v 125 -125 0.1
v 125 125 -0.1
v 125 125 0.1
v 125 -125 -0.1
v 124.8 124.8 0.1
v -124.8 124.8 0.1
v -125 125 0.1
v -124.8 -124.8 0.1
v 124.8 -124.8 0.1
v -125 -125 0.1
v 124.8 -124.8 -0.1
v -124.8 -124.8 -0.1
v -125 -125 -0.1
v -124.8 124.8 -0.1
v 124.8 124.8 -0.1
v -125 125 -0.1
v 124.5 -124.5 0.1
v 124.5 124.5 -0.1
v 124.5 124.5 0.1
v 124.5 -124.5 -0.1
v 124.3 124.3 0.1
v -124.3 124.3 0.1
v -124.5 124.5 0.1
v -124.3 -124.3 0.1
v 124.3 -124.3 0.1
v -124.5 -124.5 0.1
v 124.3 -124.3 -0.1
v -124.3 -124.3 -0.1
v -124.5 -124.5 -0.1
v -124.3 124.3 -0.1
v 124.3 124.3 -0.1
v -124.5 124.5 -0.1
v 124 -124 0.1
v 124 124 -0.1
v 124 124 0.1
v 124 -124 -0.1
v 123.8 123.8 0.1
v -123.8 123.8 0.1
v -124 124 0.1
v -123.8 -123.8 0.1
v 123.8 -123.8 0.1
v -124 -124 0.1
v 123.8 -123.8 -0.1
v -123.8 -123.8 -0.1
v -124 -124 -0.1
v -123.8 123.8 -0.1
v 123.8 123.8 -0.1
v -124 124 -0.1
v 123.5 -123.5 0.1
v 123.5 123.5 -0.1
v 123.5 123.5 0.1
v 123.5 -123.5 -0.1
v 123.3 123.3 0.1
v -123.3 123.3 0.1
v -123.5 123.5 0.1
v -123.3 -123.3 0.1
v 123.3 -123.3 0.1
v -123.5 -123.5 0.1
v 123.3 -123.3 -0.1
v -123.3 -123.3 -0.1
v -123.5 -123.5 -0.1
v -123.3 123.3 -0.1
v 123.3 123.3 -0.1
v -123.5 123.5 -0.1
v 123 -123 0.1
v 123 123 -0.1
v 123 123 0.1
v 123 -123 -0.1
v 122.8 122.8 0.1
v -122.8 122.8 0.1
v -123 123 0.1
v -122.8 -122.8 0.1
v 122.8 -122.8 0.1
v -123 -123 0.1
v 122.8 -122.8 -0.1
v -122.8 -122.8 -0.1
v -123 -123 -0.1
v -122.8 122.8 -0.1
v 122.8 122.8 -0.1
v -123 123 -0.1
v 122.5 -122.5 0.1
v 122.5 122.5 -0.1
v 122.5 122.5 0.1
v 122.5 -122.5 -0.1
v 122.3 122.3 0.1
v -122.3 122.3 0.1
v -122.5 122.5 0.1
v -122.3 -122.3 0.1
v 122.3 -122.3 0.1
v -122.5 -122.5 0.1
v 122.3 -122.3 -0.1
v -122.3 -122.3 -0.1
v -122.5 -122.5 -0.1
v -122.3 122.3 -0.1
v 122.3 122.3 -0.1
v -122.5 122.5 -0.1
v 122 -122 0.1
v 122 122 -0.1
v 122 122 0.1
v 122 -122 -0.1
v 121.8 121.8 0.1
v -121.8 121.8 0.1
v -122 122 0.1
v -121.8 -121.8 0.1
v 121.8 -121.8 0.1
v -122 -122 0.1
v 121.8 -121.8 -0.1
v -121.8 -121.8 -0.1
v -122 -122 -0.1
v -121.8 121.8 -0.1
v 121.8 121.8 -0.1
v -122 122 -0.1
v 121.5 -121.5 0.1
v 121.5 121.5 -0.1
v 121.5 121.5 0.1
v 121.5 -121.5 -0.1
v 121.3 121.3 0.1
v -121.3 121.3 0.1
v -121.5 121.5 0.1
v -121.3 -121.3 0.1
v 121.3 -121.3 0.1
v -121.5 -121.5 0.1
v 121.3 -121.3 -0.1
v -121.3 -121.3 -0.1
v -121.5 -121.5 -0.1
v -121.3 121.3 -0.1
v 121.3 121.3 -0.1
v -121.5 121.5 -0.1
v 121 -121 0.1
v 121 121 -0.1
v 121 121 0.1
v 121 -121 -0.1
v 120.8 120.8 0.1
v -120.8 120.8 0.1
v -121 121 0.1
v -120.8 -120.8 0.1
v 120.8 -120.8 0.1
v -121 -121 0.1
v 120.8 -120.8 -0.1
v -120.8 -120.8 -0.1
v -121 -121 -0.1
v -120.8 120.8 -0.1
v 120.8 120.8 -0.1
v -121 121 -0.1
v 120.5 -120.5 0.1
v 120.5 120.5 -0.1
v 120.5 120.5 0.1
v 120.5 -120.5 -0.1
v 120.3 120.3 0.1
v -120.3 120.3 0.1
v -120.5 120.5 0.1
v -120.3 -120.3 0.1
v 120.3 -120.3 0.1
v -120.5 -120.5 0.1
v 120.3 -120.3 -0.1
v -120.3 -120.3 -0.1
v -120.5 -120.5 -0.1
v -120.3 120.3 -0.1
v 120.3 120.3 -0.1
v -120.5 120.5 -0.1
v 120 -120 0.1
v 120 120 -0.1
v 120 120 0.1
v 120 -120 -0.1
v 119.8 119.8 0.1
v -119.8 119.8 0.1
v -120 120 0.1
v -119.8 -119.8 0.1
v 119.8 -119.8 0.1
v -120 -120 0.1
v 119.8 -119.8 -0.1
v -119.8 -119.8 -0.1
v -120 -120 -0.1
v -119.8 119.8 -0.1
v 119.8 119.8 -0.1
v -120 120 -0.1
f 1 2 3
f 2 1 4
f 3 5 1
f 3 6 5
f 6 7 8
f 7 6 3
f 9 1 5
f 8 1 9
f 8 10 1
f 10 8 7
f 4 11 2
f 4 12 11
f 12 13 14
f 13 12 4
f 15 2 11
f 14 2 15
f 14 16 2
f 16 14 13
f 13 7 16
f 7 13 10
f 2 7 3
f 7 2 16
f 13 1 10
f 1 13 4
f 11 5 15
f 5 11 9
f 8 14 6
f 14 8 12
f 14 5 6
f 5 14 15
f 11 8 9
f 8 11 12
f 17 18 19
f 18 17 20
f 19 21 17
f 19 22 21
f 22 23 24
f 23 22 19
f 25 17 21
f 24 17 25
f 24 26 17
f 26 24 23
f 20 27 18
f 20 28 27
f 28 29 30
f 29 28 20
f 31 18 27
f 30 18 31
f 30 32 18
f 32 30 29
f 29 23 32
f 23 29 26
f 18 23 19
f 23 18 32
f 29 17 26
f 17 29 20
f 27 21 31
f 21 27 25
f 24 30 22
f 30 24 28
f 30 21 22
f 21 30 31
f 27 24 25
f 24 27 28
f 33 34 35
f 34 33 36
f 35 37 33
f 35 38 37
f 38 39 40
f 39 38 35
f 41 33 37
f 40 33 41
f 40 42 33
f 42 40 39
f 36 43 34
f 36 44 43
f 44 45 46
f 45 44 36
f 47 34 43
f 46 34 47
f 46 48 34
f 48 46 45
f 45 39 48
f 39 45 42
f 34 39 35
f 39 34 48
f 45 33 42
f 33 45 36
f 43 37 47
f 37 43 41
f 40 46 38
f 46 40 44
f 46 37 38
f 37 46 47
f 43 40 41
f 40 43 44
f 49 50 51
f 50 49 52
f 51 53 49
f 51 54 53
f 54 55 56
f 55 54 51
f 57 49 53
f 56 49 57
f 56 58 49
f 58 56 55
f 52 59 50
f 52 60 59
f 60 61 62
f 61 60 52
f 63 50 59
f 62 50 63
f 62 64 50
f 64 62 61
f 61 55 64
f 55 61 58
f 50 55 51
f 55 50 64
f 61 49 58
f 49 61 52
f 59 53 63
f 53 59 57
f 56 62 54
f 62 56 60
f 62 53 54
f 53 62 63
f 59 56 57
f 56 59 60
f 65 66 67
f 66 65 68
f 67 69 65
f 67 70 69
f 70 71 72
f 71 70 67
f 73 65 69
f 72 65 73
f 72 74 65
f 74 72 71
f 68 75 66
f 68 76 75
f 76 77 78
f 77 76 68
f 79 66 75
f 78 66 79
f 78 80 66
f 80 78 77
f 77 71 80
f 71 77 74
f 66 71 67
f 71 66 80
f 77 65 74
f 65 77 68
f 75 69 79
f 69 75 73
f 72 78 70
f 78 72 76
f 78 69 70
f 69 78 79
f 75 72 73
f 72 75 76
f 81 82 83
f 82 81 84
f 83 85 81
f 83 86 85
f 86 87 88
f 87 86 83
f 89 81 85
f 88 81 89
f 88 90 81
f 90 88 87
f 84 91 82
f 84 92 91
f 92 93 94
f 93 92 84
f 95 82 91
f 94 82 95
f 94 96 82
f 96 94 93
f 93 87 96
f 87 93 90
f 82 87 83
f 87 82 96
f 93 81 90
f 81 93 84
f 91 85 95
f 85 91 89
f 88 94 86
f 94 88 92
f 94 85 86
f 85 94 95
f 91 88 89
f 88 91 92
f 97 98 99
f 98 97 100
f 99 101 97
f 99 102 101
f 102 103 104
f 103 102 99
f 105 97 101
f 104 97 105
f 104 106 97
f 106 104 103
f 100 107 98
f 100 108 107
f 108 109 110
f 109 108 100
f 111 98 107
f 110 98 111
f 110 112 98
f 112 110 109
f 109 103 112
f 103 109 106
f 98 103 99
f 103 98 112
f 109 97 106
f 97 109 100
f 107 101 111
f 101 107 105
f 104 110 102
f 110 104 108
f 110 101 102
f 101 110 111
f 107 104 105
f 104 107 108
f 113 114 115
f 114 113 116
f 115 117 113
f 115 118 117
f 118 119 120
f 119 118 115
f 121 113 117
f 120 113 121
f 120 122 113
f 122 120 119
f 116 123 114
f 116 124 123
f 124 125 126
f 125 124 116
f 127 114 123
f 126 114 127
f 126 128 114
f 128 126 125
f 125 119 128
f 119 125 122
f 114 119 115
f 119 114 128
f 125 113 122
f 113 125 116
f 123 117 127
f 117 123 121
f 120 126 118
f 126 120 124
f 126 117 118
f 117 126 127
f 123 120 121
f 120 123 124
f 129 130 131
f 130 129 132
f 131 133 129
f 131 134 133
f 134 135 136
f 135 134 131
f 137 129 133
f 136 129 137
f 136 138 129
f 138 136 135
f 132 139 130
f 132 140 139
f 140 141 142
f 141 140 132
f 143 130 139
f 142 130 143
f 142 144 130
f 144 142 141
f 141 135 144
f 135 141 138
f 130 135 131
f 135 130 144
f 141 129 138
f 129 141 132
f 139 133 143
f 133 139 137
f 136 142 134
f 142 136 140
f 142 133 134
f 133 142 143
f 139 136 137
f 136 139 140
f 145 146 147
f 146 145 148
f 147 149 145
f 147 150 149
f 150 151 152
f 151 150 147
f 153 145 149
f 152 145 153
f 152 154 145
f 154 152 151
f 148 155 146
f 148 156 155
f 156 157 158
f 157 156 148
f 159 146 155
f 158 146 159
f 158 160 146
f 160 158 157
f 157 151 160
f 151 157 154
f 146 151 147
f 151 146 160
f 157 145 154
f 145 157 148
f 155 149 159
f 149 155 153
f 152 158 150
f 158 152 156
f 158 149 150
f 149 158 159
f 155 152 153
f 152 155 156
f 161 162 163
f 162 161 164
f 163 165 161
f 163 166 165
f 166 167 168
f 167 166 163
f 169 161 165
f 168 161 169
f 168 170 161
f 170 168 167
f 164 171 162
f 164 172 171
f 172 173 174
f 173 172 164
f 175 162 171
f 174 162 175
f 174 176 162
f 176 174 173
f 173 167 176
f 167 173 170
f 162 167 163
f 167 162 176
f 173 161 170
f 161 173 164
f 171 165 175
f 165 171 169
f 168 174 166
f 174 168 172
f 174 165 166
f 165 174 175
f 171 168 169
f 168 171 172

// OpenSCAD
//
// ktBEDPAT
//

gap1 = 0.001;
gap2 = 0.002;
th = 0.2;

for (i =[0:10])
{
difference()
{
    cube([250-i, 250-i, th], center=true);
    cube([250-i-0.4, 250-i-0.4, th+gap2], center=true);
}
}
